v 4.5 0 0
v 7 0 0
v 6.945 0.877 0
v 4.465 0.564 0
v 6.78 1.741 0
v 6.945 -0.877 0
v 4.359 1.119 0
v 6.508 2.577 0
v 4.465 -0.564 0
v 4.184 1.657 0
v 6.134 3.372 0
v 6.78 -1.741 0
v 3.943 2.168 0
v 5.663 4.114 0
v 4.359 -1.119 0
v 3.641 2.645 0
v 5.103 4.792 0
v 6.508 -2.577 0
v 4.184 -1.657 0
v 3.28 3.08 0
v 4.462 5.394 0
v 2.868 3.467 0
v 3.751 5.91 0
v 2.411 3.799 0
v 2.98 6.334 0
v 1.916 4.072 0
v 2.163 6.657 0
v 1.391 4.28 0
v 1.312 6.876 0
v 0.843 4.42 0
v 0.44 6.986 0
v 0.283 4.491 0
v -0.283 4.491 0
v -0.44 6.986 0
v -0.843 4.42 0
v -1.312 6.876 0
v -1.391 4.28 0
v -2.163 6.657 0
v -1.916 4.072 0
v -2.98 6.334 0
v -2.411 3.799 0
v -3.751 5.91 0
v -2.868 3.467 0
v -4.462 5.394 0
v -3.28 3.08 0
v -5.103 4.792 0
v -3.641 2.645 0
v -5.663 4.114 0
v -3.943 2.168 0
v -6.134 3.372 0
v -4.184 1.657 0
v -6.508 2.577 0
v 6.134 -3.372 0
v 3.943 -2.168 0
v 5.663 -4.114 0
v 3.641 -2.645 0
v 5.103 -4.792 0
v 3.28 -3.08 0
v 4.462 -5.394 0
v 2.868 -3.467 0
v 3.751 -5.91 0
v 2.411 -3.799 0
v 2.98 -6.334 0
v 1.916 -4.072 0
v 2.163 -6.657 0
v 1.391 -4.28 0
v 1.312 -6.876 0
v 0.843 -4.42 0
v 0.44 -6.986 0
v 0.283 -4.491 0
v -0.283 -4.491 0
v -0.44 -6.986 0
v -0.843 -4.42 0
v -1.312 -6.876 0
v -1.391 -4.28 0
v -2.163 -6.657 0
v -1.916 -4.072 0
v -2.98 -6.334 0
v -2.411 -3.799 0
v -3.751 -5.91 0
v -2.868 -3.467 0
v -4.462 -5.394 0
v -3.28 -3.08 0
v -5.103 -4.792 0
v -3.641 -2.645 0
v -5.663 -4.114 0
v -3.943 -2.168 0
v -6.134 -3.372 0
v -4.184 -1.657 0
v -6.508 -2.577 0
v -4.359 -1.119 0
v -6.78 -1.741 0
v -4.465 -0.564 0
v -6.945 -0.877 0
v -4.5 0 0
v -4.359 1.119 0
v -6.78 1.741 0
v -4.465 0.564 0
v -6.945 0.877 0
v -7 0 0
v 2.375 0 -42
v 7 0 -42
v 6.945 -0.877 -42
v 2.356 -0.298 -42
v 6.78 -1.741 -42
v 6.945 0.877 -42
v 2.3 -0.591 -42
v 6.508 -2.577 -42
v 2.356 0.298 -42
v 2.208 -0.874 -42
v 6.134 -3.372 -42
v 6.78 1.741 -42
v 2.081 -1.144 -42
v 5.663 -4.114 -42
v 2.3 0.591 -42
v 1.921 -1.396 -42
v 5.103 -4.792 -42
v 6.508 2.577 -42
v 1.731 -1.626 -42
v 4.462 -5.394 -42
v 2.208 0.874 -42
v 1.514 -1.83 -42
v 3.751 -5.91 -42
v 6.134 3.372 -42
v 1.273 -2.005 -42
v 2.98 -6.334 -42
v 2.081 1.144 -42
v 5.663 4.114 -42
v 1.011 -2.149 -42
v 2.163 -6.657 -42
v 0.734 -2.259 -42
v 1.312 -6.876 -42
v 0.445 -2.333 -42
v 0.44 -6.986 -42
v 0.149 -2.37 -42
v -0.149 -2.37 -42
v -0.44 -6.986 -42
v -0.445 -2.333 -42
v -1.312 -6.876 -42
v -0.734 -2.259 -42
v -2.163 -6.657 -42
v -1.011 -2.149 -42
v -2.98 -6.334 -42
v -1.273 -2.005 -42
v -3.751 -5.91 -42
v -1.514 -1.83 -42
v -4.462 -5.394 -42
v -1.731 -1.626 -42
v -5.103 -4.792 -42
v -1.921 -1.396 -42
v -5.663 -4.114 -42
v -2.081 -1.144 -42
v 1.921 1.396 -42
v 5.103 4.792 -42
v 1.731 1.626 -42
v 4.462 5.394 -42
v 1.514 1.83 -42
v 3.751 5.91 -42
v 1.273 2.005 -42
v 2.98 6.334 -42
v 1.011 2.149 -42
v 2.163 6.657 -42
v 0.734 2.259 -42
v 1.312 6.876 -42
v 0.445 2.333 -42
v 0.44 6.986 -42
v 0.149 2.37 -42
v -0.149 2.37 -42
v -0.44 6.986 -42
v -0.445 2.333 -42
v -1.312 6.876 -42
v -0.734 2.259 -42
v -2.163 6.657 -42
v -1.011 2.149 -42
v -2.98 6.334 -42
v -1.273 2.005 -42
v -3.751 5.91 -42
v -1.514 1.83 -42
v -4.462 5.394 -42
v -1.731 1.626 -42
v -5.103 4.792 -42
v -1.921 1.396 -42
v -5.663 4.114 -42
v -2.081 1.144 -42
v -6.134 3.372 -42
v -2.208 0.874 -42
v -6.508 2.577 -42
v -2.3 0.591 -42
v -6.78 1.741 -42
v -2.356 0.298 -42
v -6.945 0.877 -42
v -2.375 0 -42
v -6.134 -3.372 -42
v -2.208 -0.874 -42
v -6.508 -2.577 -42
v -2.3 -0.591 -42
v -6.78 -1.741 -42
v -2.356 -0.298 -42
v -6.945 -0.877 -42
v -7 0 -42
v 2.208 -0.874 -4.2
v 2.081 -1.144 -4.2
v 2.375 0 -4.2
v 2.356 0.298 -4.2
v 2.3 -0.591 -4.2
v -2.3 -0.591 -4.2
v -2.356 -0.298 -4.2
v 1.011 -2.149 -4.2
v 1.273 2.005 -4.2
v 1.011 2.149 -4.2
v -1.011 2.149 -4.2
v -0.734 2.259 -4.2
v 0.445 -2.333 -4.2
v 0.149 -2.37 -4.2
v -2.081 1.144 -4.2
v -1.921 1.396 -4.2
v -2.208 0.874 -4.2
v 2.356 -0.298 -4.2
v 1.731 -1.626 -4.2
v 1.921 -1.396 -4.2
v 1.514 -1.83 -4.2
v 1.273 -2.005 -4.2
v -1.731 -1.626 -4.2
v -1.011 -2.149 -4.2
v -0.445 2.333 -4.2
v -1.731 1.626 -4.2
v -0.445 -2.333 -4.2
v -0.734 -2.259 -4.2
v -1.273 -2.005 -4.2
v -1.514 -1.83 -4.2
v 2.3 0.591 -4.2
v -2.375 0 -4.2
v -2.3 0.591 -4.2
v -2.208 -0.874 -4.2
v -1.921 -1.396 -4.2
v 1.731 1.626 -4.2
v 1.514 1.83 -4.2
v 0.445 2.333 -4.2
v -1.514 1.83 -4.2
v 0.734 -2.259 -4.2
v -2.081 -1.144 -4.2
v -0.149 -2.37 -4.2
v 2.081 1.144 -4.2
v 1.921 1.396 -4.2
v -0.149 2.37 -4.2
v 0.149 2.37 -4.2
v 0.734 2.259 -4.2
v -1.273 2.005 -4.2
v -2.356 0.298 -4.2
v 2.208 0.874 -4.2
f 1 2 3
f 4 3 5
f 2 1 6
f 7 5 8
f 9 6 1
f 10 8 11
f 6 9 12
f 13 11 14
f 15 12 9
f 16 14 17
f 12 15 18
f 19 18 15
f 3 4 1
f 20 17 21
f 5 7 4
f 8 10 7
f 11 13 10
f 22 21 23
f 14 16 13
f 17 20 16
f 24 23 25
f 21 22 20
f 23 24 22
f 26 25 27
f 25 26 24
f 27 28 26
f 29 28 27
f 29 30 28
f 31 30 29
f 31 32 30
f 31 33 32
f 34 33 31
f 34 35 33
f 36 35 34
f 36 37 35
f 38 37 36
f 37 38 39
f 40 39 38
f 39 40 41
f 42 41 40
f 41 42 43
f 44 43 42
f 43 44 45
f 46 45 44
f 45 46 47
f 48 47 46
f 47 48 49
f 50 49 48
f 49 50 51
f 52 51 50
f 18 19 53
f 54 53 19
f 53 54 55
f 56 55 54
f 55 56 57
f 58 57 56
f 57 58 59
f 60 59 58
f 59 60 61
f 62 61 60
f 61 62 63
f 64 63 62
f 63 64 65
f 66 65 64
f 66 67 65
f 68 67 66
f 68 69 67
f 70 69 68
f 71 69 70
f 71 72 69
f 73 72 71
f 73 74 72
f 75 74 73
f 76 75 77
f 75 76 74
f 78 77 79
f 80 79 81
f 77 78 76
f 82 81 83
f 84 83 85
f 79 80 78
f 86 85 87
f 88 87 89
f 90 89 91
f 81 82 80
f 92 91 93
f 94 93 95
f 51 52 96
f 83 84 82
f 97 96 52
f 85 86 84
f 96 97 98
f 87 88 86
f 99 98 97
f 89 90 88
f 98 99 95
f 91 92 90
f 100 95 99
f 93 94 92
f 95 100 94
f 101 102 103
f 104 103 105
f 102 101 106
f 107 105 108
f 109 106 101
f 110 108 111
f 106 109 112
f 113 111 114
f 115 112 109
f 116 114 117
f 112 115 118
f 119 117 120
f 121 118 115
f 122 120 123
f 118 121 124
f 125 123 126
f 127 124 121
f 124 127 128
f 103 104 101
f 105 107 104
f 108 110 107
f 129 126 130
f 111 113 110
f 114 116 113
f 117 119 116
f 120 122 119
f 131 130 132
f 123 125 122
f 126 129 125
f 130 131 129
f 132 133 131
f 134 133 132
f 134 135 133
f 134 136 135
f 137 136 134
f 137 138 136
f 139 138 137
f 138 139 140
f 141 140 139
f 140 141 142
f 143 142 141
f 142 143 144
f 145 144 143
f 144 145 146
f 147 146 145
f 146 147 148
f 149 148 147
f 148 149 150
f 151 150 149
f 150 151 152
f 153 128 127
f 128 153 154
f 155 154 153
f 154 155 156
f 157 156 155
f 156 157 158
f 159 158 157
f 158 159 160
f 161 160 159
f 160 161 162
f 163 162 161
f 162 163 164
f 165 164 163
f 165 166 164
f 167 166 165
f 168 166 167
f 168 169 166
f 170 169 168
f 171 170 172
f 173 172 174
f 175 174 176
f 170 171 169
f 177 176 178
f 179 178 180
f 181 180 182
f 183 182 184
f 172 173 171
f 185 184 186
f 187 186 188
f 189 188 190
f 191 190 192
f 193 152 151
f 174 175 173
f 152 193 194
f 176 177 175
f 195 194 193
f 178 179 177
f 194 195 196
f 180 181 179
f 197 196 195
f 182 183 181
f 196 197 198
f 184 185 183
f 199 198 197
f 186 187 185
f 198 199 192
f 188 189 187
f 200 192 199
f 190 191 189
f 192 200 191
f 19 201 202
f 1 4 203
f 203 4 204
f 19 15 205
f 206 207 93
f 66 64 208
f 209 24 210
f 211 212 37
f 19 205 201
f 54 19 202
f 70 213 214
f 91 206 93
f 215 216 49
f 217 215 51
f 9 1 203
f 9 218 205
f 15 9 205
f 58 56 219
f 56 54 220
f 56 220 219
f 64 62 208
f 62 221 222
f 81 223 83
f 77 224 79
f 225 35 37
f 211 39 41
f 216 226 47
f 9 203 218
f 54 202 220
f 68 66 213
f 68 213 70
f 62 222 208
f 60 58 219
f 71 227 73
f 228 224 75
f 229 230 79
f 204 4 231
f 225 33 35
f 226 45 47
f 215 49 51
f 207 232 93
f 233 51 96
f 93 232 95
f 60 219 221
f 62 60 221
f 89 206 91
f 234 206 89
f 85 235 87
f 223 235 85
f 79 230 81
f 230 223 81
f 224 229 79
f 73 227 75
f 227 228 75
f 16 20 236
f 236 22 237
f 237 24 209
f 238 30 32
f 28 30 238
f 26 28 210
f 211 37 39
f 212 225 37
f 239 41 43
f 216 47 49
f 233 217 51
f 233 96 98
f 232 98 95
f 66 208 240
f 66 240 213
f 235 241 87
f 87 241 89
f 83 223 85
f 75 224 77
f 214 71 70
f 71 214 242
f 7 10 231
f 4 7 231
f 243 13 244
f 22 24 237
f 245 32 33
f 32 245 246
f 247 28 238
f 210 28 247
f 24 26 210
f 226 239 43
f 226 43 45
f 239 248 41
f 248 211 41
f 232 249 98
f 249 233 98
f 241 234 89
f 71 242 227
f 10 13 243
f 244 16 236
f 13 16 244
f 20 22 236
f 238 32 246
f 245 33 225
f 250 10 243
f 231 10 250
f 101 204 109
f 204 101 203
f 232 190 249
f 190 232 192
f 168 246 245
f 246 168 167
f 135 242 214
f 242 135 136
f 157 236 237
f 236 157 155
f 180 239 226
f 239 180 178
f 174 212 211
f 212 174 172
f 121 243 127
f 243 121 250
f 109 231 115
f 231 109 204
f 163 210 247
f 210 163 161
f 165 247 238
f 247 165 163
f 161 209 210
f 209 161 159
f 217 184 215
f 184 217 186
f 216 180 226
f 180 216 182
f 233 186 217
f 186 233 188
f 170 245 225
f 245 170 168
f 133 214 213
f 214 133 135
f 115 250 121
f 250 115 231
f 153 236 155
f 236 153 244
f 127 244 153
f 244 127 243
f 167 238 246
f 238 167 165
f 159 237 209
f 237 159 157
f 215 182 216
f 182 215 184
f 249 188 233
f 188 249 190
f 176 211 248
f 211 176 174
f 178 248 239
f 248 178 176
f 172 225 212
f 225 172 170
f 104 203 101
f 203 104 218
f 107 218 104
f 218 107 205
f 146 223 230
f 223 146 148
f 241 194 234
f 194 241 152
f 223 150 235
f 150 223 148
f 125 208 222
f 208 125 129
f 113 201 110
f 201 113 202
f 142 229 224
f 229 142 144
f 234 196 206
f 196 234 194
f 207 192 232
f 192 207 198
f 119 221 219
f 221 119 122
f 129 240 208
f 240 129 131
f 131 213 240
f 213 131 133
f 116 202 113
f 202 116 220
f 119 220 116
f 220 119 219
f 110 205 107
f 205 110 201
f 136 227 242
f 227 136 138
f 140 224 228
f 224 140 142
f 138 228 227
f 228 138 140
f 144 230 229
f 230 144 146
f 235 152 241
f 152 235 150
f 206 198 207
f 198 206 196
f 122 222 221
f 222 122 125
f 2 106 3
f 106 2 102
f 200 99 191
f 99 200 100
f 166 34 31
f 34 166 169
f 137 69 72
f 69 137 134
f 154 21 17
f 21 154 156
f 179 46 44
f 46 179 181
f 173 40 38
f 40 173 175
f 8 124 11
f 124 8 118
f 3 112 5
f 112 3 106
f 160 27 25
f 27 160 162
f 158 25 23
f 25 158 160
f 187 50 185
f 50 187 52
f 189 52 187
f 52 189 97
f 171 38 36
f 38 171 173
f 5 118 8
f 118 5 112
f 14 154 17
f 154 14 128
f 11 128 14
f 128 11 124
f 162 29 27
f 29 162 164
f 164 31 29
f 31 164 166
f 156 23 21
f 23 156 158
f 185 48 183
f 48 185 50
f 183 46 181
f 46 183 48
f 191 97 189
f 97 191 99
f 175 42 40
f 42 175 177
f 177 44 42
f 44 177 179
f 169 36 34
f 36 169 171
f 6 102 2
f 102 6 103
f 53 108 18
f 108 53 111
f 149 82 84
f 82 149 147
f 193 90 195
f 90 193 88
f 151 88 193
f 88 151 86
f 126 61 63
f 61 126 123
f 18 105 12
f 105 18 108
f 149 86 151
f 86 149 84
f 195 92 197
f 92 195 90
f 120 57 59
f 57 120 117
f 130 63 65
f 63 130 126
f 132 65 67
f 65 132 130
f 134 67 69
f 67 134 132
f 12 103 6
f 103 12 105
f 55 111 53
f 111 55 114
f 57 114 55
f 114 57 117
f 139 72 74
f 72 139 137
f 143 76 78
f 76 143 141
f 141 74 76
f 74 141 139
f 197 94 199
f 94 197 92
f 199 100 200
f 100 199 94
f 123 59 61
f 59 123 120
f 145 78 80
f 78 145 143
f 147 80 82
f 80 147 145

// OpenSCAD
$fn = 50;


difference() {
	union() {
		translate(v = [0, 0, -42.0000000000]) {
			cylinder(h = 42, r = 7.0000000000);
		}
	}
	union() {
		translate(v = [0, 0, 0]) {
			rotate(a = [0, 0, 0]) {
				difference() {
					union() {
						#translate(v = [0, 0, -42.0000000000]) {
							cylinder(h = 42, r = 2.2500000000);
						}
						#translate(v = [0, 0, -4.2000000000]) {
							cylinder(h = 4.2000000000, r = 7.0000000000, r1 = 2.3750000000, r2 = 4.5000000000);
						}
						#translate(v = [0, 0, -42.0000000000]) {
							cylinder(h = 42, r = 2.3750000000);
						}
						#translate(v = [0, 0, -42.0000000000]) {
							cylinder(h = 42, r = 2.2500000000);
						}
					}
					union();
				}
			}
		}
	}
}
